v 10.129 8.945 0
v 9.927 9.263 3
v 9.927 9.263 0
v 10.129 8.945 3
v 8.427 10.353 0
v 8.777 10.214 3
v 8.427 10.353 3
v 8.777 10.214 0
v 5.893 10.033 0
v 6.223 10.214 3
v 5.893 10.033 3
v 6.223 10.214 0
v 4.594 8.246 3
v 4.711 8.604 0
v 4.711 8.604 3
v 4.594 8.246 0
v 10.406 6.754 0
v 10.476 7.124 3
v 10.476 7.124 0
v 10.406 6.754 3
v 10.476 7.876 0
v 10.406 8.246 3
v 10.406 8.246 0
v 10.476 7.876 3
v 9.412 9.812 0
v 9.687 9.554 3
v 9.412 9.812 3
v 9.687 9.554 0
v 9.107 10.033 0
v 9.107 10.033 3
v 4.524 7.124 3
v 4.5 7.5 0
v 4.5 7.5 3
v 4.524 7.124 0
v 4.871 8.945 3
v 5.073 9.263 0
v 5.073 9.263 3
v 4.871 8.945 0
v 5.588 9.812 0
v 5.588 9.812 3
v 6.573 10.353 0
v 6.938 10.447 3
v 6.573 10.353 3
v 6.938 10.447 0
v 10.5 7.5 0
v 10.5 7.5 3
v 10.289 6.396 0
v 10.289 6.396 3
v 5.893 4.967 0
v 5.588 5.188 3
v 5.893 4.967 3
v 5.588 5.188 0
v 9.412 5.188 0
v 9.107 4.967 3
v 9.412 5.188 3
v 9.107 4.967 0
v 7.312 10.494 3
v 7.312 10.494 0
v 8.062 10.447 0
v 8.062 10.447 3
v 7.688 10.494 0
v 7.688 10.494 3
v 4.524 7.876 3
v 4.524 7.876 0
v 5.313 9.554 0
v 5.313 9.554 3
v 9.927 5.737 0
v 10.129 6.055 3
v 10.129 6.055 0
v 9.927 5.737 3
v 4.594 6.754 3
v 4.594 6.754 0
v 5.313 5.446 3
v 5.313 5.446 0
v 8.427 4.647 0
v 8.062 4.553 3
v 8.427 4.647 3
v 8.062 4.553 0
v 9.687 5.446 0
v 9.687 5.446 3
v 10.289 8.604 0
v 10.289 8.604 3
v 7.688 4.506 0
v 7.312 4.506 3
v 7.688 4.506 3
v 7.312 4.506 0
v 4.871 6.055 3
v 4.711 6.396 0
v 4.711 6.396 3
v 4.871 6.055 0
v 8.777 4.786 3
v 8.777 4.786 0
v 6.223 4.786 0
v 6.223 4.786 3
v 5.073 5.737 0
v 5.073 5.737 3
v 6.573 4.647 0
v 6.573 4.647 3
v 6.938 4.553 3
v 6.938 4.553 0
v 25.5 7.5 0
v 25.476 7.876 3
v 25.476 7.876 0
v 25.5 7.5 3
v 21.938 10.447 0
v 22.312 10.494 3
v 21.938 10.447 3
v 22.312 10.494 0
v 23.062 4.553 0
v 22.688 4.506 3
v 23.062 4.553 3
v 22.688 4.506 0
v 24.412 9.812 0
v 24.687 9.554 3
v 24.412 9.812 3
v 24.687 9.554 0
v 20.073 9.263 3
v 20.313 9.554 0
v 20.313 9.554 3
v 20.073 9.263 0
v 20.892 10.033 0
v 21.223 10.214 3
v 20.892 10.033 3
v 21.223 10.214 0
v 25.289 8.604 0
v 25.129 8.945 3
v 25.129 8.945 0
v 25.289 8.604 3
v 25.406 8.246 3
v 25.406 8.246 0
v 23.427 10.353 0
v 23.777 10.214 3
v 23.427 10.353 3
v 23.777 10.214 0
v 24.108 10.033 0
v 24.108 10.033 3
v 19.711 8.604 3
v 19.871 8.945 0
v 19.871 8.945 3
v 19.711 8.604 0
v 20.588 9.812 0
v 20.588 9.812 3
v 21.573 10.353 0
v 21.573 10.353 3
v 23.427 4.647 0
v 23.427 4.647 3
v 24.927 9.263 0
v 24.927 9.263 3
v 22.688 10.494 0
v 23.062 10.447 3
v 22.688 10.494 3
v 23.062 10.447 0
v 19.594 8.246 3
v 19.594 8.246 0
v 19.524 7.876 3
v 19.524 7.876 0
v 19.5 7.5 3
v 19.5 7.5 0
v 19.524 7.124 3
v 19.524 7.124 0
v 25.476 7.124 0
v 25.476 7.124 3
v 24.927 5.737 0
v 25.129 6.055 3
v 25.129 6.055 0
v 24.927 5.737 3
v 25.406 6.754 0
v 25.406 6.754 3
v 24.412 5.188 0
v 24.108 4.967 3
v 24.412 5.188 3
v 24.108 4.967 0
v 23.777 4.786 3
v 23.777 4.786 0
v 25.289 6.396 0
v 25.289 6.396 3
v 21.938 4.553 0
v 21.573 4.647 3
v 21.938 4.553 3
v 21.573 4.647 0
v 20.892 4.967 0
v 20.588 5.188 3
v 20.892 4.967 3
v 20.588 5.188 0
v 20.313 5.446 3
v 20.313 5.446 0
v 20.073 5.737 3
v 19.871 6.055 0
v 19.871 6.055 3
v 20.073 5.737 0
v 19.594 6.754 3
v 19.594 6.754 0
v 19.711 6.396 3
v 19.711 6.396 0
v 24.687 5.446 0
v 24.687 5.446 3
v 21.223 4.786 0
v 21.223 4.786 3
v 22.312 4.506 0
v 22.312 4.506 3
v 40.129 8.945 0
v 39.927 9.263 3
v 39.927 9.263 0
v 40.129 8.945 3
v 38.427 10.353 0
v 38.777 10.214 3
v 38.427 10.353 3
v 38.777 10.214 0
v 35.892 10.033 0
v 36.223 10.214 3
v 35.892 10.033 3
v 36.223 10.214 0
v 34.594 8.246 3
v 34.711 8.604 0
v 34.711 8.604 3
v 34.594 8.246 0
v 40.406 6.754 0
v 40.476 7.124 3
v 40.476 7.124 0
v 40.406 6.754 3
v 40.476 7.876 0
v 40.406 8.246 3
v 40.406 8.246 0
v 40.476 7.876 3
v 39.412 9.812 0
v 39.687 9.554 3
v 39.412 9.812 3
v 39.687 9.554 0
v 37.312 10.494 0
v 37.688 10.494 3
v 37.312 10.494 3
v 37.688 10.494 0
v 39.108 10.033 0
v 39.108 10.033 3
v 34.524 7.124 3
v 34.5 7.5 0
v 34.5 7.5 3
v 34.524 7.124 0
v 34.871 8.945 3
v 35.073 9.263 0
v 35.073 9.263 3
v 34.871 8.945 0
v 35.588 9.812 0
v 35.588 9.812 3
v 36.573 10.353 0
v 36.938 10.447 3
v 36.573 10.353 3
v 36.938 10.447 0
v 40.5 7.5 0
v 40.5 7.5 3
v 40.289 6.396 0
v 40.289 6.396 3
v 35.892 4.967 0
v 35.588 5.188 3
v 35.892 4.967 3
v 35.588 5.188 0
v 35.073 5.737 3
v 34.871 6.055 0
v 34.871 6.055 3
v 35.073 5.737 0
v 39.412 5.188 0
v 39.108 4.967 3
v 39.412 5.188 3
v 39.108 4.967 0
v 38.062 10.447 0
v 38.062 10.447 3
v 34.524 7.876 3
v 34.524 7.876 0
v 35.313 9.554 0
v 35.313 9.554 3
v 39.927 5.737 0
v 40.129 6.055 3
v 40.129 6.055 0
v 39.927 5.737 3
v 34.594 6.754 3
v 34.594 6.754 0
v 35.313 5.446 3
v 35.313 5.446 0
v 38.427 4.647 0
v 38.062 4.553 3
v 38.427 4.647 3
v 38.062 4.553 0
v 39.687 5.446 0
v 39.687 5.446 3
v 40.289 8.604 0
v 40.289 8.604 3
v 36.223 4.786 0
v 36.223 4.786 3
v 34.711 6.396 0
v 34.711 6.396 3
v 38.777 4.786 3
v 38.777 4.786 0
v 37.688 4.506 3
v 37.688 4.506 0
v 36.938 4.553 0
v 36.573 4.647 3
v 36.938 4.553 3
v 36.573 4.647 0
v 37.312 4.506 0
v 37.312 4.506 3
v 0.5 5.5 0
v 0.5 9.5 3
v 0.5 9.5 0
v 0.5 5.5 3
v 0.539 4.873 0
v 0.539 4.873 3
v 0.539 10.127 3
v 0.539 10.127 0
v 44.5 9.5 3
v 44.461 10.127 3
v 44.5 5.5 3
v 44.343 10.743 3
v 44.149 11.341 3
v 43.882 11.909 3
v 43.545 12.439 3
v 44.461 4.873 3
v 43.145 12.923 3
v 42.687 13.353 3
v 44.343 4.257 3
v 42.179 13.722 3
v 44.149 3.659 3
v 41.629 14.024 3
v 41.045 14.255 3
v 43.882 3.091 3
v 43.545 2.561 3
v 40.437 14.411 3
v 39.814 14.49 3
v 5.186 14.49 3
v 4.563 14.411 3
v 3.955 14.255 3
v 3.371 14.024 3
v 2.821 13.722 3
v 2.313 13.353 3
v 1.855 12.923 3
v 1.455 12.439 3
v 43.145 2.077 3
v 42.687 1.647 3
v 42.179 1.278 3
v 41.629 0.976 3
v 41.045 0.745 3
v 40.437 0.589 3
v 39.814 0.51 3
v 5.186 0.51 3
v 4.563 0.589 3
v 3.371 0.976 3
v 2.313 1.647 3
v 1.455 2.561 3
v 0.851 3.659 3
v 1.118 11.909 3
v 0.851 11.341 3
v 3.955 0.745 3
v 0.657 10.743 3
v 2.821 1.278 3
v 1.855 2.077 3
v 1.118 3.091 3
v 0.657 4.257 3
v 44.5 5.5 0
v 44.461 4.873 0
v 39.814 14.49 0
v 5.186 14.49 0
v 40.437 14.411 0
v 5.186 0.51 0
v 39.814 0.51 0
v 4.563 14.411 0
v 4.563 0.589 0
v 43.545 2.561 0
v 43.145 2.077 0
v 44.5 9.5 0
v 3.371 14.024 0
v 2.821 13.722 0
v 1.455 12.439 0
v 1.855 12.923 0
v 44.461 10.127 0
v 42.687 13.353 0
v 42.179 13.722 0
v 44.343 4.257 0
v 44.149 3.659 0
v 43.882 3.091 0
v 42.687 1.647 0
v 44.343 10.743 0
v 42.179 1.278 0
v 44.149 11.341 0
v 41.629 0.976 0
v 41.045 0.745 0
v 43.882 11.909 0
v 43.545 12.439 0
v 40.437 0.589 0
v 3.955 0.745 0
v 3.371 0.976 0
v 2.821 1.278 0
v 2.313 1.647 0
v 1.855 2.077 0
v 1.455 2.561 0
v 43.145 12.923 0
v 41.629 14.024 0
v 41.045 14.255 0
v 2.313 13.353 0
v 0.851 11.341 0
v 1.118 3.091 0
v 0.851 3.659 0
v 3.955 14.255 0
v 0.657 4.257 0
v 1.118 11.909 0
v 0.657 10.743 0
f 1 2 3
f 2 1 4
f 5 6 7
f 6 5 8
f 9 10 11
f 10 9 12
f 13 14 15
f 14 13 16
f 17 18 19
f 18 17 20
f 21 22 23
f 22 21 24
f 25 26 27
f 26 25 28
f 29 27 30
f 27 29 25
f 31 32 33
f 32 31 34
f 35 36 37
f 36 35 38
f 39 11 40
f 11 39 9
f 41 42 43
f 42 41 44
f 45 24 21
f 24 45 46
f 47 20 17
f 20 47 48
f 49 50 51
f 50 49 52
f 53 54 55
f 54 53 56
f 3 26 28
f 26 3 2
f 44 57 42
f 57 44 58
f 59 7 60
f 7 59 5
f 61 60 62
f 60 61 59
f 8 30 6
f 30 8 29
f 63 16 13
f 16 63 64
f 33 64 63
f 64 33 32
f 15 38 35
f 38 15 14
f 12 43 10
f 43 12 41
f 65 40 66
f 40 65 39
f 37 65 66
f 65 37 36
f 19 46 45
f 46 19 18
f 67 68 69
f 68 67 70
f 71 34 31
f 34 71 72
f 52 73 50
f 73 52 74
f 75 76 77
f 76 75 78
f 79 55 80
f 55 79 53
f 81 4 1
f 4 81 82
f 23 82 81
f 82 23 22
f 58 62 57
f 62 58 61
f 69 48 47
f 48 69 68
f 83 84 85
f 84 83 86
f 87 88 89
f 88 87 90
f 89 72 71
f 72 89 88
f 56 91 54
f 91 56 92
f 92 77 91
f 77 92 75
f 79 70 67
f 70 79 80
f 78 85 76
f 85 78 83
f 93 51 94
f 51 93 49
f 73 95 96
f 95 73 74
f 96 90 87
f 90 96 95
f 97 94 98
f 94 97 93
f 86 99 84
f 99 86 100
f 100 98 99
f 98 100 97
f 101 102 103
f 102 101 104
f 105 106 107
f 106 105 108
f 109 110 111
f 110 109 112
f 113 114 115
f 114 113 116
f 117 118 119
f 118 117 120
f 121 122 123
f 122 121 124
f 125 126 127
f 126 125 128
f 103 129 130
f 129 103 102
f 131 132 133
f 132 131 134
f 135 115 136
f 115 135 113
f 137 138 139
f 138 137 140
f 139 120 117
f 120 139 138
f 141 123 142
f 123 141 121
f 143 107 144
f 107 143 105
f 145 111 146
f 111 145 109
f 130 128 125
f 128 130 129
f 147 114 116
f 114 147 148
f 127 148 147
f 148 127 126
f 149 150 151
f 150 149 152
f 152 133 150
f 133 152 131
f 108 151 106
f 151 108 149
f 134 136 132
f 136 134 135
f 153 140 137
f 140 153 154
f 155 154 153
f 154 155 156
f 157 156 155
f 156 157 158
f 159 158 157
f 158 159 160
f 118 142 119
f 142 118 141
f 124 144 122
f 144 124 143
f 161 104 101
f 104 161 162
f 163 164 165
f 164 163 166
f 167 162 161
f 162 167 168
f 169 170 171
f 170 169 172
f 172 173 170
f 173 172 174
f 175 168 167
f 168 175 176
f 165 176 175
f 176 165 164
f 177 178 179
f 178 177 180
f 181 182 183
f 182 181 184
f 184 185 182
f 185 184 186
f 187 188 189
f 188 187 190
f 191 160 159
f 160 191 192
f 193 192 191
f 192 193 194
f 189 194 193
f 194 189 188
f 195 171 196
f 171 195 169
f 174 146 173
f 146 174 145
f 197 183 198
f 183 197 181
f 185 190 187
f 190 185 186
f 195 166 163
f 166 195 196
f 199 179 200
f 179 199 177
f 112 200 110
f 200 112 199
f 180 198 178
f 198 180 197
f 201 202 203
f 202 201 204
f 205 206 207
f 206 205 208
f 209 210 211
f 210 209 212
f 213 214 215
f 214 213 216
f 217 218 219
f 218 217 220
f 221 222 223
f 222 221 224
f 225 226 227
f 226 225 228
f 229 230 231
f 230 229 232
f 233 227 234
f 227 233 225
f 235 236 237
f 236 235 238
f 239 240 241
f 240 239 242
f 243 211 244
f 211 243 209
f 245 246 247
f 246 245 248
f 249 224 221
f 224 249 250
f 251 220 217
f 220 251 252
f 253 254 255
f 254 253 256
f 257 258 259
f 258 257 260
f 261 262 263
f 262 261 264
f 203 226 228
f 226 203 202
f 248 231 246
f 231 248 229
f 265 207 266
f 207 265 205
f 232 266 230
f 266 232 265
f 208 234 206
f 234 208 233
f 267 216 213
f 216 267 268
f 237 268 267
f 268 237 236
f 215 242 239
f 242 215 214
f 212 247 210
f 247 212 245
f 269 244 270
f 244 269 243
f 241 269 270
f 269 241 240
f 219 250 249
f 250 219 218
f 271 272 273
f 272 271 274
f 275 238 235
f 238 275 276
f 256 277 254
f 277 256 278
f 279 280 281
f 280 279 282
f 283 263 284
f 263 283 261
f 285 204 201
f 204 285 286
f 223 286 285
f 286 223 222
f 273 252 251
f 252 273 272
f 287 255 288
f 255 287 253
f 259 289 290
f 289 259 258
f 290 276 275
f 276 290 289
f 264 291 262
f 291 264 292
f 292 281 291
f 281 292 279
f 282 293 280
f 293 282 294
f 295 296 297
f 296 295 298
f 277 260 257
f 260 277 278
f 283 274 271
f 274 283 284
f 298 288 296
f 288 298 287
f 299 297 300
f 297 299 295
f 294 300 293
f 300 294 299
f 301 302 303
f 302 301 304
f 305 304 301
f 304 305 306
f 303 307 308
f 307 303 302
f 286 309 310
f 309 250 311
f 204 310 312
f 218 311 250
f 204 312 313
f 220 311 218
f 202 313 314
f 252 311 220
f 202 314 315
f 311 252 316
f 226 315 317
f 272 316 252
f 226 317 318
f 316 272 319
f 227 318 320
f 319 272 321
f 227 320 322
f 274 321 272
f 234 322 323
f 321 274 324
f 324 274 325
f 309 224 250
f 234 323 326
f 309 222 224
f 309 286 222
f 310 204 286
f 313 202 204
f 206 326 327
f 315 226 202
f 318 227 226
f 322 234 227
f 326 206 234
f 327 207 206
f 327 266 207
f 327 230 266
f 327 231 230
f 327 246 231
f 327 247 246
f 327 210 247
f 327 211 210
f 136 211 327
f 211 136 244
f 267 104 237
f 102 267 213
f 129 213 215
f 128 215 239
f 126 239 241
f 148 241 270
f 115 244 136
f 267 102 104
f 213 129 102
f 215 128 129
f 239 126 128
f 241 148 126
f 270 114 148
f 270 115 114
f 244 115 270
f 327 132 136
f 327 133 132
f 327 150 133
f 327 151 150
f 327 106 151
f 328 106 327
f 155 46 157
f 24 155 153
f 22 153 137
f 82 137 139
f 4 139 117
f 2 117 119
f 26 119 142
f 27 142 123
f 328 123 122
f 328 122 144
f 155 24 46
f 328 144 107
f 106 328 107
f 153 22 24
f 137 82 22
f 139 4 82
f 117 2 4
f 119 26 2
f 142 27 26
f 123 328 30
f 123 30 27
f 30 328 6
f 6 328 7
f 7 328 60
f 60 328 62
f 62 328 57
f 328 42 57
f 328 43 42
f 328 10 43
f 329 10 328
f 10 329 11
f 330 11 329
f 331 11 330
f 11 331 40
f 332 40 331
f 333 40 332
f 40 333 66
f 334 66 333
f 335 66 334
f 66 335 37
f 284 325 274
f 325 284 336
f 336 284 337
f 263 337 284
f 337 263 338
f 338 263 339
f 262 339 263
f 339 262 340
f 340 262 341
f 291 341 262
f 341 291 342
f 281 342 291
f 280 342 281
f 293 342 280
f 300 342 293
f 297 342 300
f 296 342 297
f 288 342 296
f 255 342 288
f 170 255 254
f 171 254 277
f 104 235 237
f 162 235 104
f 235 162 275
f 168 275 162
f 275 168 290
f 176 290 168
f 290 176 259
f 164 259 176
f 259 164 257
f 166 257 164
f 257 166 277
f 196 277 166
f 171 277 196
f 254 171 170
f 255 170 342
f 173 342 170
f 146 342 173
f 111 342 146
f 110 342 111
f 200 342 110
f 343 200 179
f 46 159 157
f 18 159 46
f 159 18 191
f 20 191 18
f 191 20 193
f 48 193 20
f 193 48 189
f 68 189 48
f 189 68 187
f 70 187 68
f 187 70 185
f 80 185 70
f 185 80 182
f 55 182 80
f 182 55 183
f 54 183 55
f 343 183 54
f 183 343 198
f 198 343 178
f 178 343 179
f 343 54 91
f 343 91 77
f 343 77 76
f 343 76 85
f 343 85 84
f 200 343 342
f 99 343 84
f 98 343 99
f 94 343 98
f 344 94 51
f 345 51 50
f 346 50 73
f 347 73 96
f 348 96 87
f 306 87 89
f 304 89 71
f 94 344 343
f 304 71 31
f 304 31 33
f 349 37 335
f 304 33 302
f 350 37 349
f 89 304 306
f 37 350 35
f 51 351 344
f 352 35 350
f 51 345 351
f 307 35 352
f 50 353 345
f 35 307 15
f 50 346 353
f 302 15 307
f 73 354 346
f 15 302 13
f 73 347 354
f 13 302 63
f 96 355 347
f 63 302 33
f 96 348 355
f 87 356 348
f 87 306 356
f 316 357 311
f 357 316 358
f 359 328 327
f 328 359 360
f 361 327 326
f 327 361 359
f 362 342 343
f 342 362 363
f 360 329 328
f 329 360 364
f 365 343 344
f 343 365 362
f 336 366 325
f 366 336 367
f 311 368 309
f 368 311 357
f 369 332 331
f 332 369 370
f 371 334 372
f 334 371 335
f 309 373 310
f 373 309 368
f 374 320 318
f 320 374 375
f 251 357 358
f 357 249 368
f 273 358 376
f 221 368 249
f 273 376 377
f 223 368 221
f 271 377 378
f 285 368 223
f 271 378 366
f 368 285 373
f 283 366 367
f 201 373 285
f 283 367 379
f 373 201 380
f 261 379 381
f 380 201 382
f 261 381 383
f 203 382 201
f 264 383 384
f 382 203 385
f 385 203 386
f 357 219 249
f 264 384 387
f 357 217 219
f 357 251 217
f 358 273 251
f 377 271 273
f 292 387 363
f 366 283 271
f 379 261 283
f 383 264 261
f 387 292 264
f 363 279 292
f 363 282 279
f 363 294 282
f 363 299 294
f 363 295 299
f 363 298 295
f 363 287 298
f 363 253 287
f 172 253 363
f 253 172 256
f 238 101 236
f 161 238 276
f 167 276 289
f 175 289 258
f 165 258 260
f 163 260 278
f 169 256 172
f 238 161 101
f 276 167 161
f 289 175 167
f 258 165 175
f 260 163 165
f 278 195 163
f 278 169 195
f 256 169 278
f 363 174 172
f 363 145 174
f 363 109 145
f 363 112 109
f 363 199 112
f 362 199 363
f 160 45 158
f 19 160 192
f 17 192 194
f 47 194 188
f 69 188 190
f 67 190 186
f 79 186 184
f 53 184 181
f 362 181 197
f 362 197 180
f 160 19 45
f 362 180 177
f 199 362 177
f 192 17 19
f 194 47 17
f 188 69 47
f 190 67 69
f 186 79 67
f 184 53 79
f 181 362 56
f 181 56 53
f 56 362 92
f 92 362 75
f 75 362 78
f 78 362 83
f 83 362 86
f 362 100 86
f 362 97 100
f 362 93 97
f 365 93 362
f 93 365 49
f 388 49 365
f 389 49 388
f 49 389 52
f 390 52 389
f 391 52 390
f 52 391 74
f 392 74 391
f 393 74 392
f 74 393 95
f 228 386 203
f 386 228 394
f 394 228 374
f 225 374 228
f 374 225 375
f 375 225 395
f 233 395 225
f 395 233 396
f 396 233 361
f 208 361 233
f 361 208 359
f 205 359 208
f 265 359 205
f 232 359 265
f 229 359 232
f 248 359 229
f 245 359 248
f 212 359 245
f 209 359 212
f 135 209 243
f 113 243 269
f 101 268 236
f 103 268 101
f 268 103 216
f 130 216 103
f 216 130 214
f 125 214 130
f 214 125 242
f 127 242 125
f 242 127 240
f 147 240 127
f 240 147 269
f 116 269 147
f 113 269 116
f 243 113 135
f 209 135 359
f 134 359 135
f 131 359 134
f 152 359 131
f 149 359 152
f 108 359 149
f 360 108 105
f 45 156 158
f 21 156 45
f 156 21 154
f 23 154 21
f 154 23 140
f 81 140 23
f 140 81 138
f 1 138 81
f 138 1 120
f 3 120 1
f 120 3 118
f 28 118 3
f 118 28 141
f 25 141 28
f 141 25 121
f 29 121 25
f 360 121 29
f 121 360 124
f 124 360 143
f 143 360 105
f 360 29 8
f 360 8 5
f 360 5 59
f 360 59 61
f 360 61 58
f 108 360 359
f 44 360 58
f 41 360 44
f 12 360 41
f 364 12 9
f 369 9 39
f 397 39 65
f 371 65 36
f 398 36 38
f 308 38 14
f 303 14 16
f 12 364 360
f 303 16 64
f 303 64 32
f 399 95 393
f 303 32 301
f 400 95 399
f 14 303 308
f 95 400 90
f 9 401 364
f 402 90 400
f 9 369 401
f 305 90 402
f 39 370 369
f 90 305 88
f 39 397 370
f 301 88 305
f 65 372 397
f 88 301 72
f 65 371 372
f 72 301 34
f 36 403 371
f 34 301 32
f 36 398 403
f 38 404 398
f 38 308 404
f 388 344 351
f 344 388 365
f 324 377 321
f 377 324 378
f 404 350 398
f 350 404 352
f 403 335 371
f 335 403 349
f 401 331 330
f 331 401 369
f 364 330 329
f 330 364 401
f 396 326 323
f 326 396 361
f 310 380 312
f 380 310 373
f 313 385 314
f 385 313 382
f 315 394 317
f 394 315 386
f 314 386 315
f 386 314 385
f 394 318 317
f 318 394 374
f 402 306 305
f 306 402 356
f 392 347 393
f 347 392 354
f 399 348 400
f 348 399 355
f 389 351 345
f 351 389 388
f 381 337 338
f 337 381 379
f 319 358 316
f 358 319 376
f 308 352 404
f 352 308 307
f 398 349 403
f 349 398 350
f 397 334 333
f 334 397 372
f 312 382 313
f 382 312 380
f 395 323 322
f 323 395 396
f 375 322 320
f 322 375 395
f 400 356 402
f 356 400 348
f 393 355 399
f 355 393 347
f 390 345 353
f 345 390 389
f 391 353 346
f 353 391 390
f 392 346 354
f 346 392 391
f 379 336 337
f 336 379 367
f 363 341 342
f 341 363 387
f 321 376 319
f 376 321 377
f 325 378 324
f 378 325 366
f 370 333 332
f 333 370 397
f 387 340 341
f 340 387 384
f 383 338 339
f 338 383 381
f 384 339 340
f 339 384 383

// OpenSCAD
// Generated by SolidPython 1.1.3 on 2023-01-30 13:25:17
$fn = 50;


difference() {
	union() {
		translate(v = [22.5000000000, 7.5000000000, 0]) {
			rotate(a = [0, 0, 0]) {
				hull() {
					translate(v = [-17.0000000000, 2.0000000000, 0]) {
						rotate(a = [0, 0, 0]) {
							translate(v = [0, 0, 0]) {
								rotate(a = [0, 0, 0]) {
									cylinder(h = 3, r = 5);
								}
							}
						}
					}
					translate(v = [17.0000000000, 2.0000000000, 0]) {
						rotate(a = [0, 0, 0]) {
							translate(v = [0, 0, 0]) {
								rotate(a = [0, 0, 0]) {
									cylinder(h = 3, r = 5);
								}
							}
						}
					}
					translate(v = [-17.0000000000, -2.0000000000, 0]) {
						rotate(a = [0, 0, 0]) {
							translate(v = [0, 0, 0]) {
								rotate(a = [0, 0, 0]) {
									cylinder(h = 3, r = 5);
								}
							}
						}
					}
					translate(v = [17.0000000000, -2.0000000000, 0]) {
						rotate(a = [0, 0, 0]) {
							translate(v = [0, 0, 0]) {
								rotate(a = [0, 0, 0]) {
									cylinder(h = 3, r = 5);
								}
							}
						}
					}
				}
			}
		}
	}
	union() {
		translate(v = [7.5000000000, 7.5000000000, 0]) {
			rotate(a = [0, 0, 0]) {
				translate(v = [0, 0, -50]) {
					rotate(a = [0, 0, 0]) {
						cylinder(h = 100, r = 3.0000000000);
					}
				}
			}
		}
		translate(v = [22.5000000000, 7.5000000000, 0]) {
			rotate(a = [0, 0, 0]) {
				translate(v = [0, 0, -50]) {
					rotate(a = [0, 0, 0]) {
						cylinder(h = 100, r = 3.0000000000);
					}
				}
			}
		}
		translate(v = [37.5000000000, 7.5000000000, 0]) {
			rotate(a = [0, 0, 0]) {
				translate(v = [0, 0, -50]) {
					rotate(a = [0, 0, 0]) {
						cylinder(h = 100, r = 3.0000000000);
					}
				}
			}
		}
	}
}
/***********************************************
*********      SolidPython code:      **********
************************************************
 
from solid import *
import os
import subprocess

import oomB

import opsc_library_gen

mode = "laser"
#mode = "3d_print"

defined_objects = {}

radius_dict = {}
countersunk_dict = {}


def set_mode(m):
    global mode
    mode = m
    radius_dict['M6'] = 6.5/2
    radius_dict['M3'] = 3.3/2
    if mode == "laser":
        radius_dict['M6'] = 6/2
        radius_dict['M3'] = 3/2

    countersunk_dict['M3'] = {}
    countersunk_dict['M3']['little_rad'] = radius_dict['M3']
    countersunk_dict['M3']['big_rad'] = (5.5+0.6)/2
    if mode == "laser":
        countersunk_dict['M3']['big_rad'] = (4.75+0.6)/2
        countersunk_dict['M3']['little_rad'] = (4.75+0.6)/2

    countersunk_dict['M3']['height'] = 1.7


def opsc_make_object(filename, objects, save_type="none",resolution=50, layers = 1, tilediff = 200, mode="laser"):
    set_mode(mode)
    save_type = save_type.lower()
    os.makedirs(os.path.dirname(filename), exist_ok=True)
    final_object = opsc_get_object(objects)
    # Save the final object to the specified filename    
    scad_render_to_file(final_object, filename, file_header='$fn = %s;' % resolution, include_orig_code=True)
    if mode == "laser":
        filename_laser = filename.replace(".scad","-flat.scad")
        scad_render_to_file(getLaser(final_object, layers=layers, tilediff=tilediff), filename_laser, file_header='$fn = %s;' % resolution, include_orig_code=True)
        if save_type == "all":
            saveToAll(filename_laser)
        elif save_type == "dxf":
            saveToDxf(filename_laser)
    if save_type == "all":
        saveToAll(filename)
    elif save_type == "dxf":
        saveToDxf(filename)


def opsc_get_object(objects):
    # Create the solidpython objects
    positive_objects = [get_opsc_item(obj) for obj in objects if obj['type'] == 'positive']
    negative_objects = [get_opsc_item(obj) for obj in objects if obj['type'] == 'negative']
    # Union the positive objects
    positive_object = union()(*positive_objects)
    # Union the negative objects
    negative_object = union()(*negative_objects)
    # Create the final object by subtracting the negative objects from the positive objects
    return difference()(positive_object, negative_object)

def get_opsc_item(params):
    # A dictionary to map radius string values to numerical values
    #radius_dict = {'small': 5, 'medium': 10, 'large': 15}
    # An array of function names for basic shapes
    basic_shapes = ['cube', 'sphere', 'cylinder']
    
    # An array of function names for other shapes
    other_shapes = ['hole', 'slot', 'rounded_rectangle', 'countersunk']
    


    # Convert radius to r if present, and remove radius from the params dictionary
    if 'radius' in params:
        if isinstance(params['radius'], str):
            # Use the radius_dict to map the radius string value to a numerical value
            params['r'] = radius_dict[params['radius']]
        else:
            params['r'] = params['radius']
        del params['radius']
    

    # Check if the object type is a basic shape
    if params['shape'] in basic_shapes:
        # Remove shape and unexpected dictionary values
        allowed_keys = {'size', 'r', 'r1', 'r2', 'd', 'h', 'rw', 'rh', 'dw', 'dh'}
        shape_params = {k: v for k, v in params.items() if k in allowed_keys}

        # Call the corresponding function for the shape parameter, using ** notation to pass the shape_params dictionary as keyword arguments
        return get_opsc_transform(params,globals()[params['shape']](**shape_params))
    
    # If the object type is not a basic shape, check if it's a defined object or one of the other shapes
    elif params['shape'] in other_shapes:
        # Call the corresponding function for the shape parameter, passing the params dictionary as an argument
        p2 = copy.deepcopy(params)
        p2["pos"] = [0,0,0]
        return get_opsc_transform(params,globals()[params['shape']](p2))
    
    # If the object is not a basic shape or a defined object, try to import it from a .scad file
    else:
        obj = defined_objects[params['shape']]
        return get_opsc_transform(params,obj)

def get_opsc_transform(params, solid_obj):
    # Rotate the object based on the 'rot' field in the params dictionary, or the 'rotX', 'rotY', and 'rotZ' fields if 'rot' is not present
    rot = params.get('rot', [])
    if rot:
        rotX, rotY, rotZ = rot
    else:
        rotX = params.get('rotX', 0)
        rotY = params.get('rotY', 0)
        rotZ = params.get('rotZ', 0)
    solid_obj = rotate([rotX, rotY, rotZ])(solid_obj)

    # Translate the object based on the 'pos' field in the params dictionary, or the 'x', 'y', and 'z' fields if 'pos' is not present
    pos = params.get('pos', [])
    if pos:
        x, y, z = pos
    else:
        x = params.get('x', 0)
        y = params.get('y', 0)
        z = params.get('z', 0)
    solid_obj = translate([x, y, z])(solid_obj)
    return solid_obj


import random

def opsc_easy_array(type, shape, repeats, pos_start, shift_arr, **kwargs):
    for i in range(0,3):
        repeats.append(1)
        pos_start.append(0)
        shift_arr.append(0)
    return_objects = []

    for x in range(0,repeats[0]):
        for y in range(0,repeats[1]):
            for z in range(0,repeats[2]):
                return_objects.append(opsc_easy(type, shape, pos=[pos_start[0]+x*shift_arr[0],pos_start[1]+y*shift_arr[1],pos_start[2]+z*shift_arr[2]], **kwargs))
    return return_objects                



def opsc_easy(type, shape, **kwargs):
    obj = {
        'type': type,
        'shape': shape
    }
    for param in ['size', 'r', 'r1', 'r2', 'd', 'h', 'rw', 'rh', 'dw', 'dh', 'pos', 'x', 'y', 'z', 'rot', 'rotX', 'rotY', 'rotZ', "w"]:
        if param in kwargs:
            obj[param] = kwargs[param]
    return obj

def hole(params):
    p2 = copy.deepcopy(params)  
    # Check if the radius is a string and replace it with the corresponding value from the dictionary
    if isinstance(p2['r'], str):
        p2['r'] = radius_dict[p2['r']]
    
    # Set the height to 100 if not specified
    if 'h' not in p2:
        p2['h'] = 100
        p2["pos"] = [0,0,-50]
    p2["center"] = True
    # Create the cylinder object
    p2["shape"] = "cylinder"
    p2["type"] = "positive"

    return get_opsc_item(p2)

import copy

def countersunk(params):
    p2 = copy.deepcopy(params)
    counter_rad = p2['r']
    p2['r'] = radius_dict[p2['r']]
    hp = copy.deepcopy(p2)
    hp["type"] = "positive"
    hp["shape"] = "hole"
    del hp["rot"]
    hol = get_opsc_item(hp)
    
    cp = copy.deepcopy(p2)
    cp["h"] = countersunk_dict[counter_rad]["height"]
    cp["r2"] = countersunk_dict[counter_rad]["little_rad"]
    cp["r1"] = countersunk_dict[counter_rad]["big_rad"]
    del cp["r"]
    del cp["rot"]
    cp["type"] = "positive"
    cp["shape"] = "cylinder"
    cp["pos"] = [0,0,0]

    top = get_opsc_item(cp)
    return union()(hol,top)



def slot(params):  
    p2 = copy.deepcopy(params) 
    if isinstance(p2['r'], str):
        p2['r'] = radius_dict[p2['r']]
    p2["type"] = "positive"
    p2["shape"] = "hole"
    del p2["rot"]
    p2["pos"] = [0,0,0]
    left = copy.deepcopy(p2)
    right = copy.deepcopy(p2)
    left["pos"][0] = p2["w"] / 2 - p2["r"] 
    
    right["pos"][0] = -p2["w"] / 2 + p2["r"] 
    pass
    leftObj = get_opsc_item(left)
    rightObj = get_opsc_item(right)
    return hull()(leftObj, rightObj)

def rounded_rectangle(params):   
    p2 = copy.deepcopy(params) 
    p2["h"] = p2["size"][2]
    p2["pos"] = p2.get("pos", [0, 0, 0]) 
    p2["type"] = "positive"
    p2["shape"] = "hole"
    p2["pos"] = [0,0,0]
    
    if 'rot' in p2:
        del p2["rot"]   
    if 'r' not in p2:
        p2["r"] = 5 
    tl = copy.deepcopy(p2)
    tr = copy.deepcopy(p2)
    bl = copy.deepcopy(p2)
    br = copy.deepcopy(p2)
    tl["pos"][0] = -(p2["size"][0] - p2["r"]*2)/2
    tl["pos"][1] = (p2["size"][1] - p2["r"]*2)/2
    tr["pos"][0] = (p2["size"][0] - p2["r"]*2)/2
    tr["pos"][1] = (p2["size"][1] - p2["r"]*2)/2
    bl["pos"][0] = -(p2["size"][0] - p2["r"]*2)/2
    bl["pos"][1] = -(p2["size"][1] - p2["r"]*2)/2
    br["pos"][0] = (p2["size"][0] - p2["r"]*2)/2
    br["pos"][1] = -(p2["size"][1] - p2["r"]*2)/2
    del tl["size"]
    del tr["size"]
    del bl["size"]
    del br["size"]
    tlo = get_opsc_item(tl)
    tro = get_opsc_item(tr)
    blo = get_opsc_item(bl)
    bro = get_opsc_item(br)    
    return hull()(tlo, tro, blo, bro)



def import_scad_object(filename):
    # Import the .scad file and convert it to a solidpython object
    #filename = "parts"
    obj = import_scad(filename)
    return obj.main()
    


import os
import solid as solidpython

# A dictionary to store the defined objects


def load_scad_objects():
    opsc_library_gen.gen_library(defined_objects)

import random

def test(num_objects):
    objects = []
    for i in range(num_objects):
        # Choose a random shape
        #shape = random.choice(['cube', 'sphere', 'cylinder', 'hole', 'slot', "rounded_rectangle"])
        shape = random.choice(["rounded_rectangle"])

        # Choose a random type
        type = random.choice(['positive', 'negative'])
        
        # Create an empty object dictionary
        obj = {'shape': shape, 'type': type}
        
        # Set shape-specific parameters
        if obj['shape'] in ['cube']:
            obj['size'] =  [random.uniform(5, 15), random.uniform(5, 15), random.uniform(5, 15)]
        if obj['shape'] in ['rounded_rectangle']:
            obj['size'] =  [random.uniform(5, 15), random.uniform(5, 15), random.uniform(5, 15)]
            obj['r'] = random.uniform(0.5, 5)
        elif obj['shape'] == 'sphere':
            obj['r'] = random.uniform(5, 15)
        elif obj['shape'] in ['cylinder', 'hole']:
            obj['r'] = random.uniform(0.5, 5)
            obj['h'] = random.uniform(5, 15)
        elif obj['shape'] == 'slot':
            obj['r'] = random.uniform(0.5, 5)
            obj['h'] = random.uniform(5, 15)
            obj['w'] = random.uniform(5, 15)
        
        # Set a random position and rotation
        obj['pos'] = [random.uniform(-20, 20), random.uniform(-20, 20), random.uniform(-20, 20)]
        obj['rot'] = [random.uniform(-180, 180), random.uniform(-180, 180), random.uniform(-180, 180)]
        
        # Add the object to the list
        objects.append(obj)
    return objects

####### old file saving
def saveToAll(fileIn):
    saveToDxf(fileIn)
    saveToPng(fileIn)
    saveToStl(fileIn)
    saveToSvg(fileIn)

def saveToDxf(fileIn, fileOut="", copy_to_laser=True):
    if fileOut == "":
        fileOut = fileIn.replace(".scad",".dxf")
    saveToFile(fileIn, fileOut)


    
def saveToPng(fileIn, fileOut="",extra="--render"):
    if fileOut == "":
        fileOut = fileIn.replace(".scad",".png")
    saveToFile(fileIn, fileOut)

def saveToStl(fileIn, fileOut=""):
    if fileOut == "":
        fileOut = fileIn.replace(".scad",".stl")
    saveToFile(fileIn, fileOut)
    
def saveToSvg(fileIn, fileOut=""):
    if fileOut == "":
        fileOut = fileIn.replace(".scad",".svg")
    saveToFile(fileIn, fileOut)

def saveToFile(fileIn, fileOut,extra=""):
    #extra = extra + " --colorscheme Tomorrow"

    launchStr = 'openscad -o "' + fileOut + '"' + extra + ' "' + fileIn + '"'
    if ".png" in fileOut:
        launchStr = launchStr + " --render"
    print("            saveToFile launch string: " + launchStr)
    subprocess.run(launchStr)
    x=0

def getLaser(final_object,start=1.5,layers=1,thickness=3,tilediff=200):
        rv= []

        for x in range(layers):
            rv.append(translate([0,x*tilediff,0])(
                    projection()(
                        intersection()(translate([-500,-500,start+x*thickness])(cube(size=[1000,1000,0.1])),
                            final_object
                        )
                    )
            )
            )
            
        return union()(rv)

set_mode("laser")
load_scad_objects() 
 
************************************************/
